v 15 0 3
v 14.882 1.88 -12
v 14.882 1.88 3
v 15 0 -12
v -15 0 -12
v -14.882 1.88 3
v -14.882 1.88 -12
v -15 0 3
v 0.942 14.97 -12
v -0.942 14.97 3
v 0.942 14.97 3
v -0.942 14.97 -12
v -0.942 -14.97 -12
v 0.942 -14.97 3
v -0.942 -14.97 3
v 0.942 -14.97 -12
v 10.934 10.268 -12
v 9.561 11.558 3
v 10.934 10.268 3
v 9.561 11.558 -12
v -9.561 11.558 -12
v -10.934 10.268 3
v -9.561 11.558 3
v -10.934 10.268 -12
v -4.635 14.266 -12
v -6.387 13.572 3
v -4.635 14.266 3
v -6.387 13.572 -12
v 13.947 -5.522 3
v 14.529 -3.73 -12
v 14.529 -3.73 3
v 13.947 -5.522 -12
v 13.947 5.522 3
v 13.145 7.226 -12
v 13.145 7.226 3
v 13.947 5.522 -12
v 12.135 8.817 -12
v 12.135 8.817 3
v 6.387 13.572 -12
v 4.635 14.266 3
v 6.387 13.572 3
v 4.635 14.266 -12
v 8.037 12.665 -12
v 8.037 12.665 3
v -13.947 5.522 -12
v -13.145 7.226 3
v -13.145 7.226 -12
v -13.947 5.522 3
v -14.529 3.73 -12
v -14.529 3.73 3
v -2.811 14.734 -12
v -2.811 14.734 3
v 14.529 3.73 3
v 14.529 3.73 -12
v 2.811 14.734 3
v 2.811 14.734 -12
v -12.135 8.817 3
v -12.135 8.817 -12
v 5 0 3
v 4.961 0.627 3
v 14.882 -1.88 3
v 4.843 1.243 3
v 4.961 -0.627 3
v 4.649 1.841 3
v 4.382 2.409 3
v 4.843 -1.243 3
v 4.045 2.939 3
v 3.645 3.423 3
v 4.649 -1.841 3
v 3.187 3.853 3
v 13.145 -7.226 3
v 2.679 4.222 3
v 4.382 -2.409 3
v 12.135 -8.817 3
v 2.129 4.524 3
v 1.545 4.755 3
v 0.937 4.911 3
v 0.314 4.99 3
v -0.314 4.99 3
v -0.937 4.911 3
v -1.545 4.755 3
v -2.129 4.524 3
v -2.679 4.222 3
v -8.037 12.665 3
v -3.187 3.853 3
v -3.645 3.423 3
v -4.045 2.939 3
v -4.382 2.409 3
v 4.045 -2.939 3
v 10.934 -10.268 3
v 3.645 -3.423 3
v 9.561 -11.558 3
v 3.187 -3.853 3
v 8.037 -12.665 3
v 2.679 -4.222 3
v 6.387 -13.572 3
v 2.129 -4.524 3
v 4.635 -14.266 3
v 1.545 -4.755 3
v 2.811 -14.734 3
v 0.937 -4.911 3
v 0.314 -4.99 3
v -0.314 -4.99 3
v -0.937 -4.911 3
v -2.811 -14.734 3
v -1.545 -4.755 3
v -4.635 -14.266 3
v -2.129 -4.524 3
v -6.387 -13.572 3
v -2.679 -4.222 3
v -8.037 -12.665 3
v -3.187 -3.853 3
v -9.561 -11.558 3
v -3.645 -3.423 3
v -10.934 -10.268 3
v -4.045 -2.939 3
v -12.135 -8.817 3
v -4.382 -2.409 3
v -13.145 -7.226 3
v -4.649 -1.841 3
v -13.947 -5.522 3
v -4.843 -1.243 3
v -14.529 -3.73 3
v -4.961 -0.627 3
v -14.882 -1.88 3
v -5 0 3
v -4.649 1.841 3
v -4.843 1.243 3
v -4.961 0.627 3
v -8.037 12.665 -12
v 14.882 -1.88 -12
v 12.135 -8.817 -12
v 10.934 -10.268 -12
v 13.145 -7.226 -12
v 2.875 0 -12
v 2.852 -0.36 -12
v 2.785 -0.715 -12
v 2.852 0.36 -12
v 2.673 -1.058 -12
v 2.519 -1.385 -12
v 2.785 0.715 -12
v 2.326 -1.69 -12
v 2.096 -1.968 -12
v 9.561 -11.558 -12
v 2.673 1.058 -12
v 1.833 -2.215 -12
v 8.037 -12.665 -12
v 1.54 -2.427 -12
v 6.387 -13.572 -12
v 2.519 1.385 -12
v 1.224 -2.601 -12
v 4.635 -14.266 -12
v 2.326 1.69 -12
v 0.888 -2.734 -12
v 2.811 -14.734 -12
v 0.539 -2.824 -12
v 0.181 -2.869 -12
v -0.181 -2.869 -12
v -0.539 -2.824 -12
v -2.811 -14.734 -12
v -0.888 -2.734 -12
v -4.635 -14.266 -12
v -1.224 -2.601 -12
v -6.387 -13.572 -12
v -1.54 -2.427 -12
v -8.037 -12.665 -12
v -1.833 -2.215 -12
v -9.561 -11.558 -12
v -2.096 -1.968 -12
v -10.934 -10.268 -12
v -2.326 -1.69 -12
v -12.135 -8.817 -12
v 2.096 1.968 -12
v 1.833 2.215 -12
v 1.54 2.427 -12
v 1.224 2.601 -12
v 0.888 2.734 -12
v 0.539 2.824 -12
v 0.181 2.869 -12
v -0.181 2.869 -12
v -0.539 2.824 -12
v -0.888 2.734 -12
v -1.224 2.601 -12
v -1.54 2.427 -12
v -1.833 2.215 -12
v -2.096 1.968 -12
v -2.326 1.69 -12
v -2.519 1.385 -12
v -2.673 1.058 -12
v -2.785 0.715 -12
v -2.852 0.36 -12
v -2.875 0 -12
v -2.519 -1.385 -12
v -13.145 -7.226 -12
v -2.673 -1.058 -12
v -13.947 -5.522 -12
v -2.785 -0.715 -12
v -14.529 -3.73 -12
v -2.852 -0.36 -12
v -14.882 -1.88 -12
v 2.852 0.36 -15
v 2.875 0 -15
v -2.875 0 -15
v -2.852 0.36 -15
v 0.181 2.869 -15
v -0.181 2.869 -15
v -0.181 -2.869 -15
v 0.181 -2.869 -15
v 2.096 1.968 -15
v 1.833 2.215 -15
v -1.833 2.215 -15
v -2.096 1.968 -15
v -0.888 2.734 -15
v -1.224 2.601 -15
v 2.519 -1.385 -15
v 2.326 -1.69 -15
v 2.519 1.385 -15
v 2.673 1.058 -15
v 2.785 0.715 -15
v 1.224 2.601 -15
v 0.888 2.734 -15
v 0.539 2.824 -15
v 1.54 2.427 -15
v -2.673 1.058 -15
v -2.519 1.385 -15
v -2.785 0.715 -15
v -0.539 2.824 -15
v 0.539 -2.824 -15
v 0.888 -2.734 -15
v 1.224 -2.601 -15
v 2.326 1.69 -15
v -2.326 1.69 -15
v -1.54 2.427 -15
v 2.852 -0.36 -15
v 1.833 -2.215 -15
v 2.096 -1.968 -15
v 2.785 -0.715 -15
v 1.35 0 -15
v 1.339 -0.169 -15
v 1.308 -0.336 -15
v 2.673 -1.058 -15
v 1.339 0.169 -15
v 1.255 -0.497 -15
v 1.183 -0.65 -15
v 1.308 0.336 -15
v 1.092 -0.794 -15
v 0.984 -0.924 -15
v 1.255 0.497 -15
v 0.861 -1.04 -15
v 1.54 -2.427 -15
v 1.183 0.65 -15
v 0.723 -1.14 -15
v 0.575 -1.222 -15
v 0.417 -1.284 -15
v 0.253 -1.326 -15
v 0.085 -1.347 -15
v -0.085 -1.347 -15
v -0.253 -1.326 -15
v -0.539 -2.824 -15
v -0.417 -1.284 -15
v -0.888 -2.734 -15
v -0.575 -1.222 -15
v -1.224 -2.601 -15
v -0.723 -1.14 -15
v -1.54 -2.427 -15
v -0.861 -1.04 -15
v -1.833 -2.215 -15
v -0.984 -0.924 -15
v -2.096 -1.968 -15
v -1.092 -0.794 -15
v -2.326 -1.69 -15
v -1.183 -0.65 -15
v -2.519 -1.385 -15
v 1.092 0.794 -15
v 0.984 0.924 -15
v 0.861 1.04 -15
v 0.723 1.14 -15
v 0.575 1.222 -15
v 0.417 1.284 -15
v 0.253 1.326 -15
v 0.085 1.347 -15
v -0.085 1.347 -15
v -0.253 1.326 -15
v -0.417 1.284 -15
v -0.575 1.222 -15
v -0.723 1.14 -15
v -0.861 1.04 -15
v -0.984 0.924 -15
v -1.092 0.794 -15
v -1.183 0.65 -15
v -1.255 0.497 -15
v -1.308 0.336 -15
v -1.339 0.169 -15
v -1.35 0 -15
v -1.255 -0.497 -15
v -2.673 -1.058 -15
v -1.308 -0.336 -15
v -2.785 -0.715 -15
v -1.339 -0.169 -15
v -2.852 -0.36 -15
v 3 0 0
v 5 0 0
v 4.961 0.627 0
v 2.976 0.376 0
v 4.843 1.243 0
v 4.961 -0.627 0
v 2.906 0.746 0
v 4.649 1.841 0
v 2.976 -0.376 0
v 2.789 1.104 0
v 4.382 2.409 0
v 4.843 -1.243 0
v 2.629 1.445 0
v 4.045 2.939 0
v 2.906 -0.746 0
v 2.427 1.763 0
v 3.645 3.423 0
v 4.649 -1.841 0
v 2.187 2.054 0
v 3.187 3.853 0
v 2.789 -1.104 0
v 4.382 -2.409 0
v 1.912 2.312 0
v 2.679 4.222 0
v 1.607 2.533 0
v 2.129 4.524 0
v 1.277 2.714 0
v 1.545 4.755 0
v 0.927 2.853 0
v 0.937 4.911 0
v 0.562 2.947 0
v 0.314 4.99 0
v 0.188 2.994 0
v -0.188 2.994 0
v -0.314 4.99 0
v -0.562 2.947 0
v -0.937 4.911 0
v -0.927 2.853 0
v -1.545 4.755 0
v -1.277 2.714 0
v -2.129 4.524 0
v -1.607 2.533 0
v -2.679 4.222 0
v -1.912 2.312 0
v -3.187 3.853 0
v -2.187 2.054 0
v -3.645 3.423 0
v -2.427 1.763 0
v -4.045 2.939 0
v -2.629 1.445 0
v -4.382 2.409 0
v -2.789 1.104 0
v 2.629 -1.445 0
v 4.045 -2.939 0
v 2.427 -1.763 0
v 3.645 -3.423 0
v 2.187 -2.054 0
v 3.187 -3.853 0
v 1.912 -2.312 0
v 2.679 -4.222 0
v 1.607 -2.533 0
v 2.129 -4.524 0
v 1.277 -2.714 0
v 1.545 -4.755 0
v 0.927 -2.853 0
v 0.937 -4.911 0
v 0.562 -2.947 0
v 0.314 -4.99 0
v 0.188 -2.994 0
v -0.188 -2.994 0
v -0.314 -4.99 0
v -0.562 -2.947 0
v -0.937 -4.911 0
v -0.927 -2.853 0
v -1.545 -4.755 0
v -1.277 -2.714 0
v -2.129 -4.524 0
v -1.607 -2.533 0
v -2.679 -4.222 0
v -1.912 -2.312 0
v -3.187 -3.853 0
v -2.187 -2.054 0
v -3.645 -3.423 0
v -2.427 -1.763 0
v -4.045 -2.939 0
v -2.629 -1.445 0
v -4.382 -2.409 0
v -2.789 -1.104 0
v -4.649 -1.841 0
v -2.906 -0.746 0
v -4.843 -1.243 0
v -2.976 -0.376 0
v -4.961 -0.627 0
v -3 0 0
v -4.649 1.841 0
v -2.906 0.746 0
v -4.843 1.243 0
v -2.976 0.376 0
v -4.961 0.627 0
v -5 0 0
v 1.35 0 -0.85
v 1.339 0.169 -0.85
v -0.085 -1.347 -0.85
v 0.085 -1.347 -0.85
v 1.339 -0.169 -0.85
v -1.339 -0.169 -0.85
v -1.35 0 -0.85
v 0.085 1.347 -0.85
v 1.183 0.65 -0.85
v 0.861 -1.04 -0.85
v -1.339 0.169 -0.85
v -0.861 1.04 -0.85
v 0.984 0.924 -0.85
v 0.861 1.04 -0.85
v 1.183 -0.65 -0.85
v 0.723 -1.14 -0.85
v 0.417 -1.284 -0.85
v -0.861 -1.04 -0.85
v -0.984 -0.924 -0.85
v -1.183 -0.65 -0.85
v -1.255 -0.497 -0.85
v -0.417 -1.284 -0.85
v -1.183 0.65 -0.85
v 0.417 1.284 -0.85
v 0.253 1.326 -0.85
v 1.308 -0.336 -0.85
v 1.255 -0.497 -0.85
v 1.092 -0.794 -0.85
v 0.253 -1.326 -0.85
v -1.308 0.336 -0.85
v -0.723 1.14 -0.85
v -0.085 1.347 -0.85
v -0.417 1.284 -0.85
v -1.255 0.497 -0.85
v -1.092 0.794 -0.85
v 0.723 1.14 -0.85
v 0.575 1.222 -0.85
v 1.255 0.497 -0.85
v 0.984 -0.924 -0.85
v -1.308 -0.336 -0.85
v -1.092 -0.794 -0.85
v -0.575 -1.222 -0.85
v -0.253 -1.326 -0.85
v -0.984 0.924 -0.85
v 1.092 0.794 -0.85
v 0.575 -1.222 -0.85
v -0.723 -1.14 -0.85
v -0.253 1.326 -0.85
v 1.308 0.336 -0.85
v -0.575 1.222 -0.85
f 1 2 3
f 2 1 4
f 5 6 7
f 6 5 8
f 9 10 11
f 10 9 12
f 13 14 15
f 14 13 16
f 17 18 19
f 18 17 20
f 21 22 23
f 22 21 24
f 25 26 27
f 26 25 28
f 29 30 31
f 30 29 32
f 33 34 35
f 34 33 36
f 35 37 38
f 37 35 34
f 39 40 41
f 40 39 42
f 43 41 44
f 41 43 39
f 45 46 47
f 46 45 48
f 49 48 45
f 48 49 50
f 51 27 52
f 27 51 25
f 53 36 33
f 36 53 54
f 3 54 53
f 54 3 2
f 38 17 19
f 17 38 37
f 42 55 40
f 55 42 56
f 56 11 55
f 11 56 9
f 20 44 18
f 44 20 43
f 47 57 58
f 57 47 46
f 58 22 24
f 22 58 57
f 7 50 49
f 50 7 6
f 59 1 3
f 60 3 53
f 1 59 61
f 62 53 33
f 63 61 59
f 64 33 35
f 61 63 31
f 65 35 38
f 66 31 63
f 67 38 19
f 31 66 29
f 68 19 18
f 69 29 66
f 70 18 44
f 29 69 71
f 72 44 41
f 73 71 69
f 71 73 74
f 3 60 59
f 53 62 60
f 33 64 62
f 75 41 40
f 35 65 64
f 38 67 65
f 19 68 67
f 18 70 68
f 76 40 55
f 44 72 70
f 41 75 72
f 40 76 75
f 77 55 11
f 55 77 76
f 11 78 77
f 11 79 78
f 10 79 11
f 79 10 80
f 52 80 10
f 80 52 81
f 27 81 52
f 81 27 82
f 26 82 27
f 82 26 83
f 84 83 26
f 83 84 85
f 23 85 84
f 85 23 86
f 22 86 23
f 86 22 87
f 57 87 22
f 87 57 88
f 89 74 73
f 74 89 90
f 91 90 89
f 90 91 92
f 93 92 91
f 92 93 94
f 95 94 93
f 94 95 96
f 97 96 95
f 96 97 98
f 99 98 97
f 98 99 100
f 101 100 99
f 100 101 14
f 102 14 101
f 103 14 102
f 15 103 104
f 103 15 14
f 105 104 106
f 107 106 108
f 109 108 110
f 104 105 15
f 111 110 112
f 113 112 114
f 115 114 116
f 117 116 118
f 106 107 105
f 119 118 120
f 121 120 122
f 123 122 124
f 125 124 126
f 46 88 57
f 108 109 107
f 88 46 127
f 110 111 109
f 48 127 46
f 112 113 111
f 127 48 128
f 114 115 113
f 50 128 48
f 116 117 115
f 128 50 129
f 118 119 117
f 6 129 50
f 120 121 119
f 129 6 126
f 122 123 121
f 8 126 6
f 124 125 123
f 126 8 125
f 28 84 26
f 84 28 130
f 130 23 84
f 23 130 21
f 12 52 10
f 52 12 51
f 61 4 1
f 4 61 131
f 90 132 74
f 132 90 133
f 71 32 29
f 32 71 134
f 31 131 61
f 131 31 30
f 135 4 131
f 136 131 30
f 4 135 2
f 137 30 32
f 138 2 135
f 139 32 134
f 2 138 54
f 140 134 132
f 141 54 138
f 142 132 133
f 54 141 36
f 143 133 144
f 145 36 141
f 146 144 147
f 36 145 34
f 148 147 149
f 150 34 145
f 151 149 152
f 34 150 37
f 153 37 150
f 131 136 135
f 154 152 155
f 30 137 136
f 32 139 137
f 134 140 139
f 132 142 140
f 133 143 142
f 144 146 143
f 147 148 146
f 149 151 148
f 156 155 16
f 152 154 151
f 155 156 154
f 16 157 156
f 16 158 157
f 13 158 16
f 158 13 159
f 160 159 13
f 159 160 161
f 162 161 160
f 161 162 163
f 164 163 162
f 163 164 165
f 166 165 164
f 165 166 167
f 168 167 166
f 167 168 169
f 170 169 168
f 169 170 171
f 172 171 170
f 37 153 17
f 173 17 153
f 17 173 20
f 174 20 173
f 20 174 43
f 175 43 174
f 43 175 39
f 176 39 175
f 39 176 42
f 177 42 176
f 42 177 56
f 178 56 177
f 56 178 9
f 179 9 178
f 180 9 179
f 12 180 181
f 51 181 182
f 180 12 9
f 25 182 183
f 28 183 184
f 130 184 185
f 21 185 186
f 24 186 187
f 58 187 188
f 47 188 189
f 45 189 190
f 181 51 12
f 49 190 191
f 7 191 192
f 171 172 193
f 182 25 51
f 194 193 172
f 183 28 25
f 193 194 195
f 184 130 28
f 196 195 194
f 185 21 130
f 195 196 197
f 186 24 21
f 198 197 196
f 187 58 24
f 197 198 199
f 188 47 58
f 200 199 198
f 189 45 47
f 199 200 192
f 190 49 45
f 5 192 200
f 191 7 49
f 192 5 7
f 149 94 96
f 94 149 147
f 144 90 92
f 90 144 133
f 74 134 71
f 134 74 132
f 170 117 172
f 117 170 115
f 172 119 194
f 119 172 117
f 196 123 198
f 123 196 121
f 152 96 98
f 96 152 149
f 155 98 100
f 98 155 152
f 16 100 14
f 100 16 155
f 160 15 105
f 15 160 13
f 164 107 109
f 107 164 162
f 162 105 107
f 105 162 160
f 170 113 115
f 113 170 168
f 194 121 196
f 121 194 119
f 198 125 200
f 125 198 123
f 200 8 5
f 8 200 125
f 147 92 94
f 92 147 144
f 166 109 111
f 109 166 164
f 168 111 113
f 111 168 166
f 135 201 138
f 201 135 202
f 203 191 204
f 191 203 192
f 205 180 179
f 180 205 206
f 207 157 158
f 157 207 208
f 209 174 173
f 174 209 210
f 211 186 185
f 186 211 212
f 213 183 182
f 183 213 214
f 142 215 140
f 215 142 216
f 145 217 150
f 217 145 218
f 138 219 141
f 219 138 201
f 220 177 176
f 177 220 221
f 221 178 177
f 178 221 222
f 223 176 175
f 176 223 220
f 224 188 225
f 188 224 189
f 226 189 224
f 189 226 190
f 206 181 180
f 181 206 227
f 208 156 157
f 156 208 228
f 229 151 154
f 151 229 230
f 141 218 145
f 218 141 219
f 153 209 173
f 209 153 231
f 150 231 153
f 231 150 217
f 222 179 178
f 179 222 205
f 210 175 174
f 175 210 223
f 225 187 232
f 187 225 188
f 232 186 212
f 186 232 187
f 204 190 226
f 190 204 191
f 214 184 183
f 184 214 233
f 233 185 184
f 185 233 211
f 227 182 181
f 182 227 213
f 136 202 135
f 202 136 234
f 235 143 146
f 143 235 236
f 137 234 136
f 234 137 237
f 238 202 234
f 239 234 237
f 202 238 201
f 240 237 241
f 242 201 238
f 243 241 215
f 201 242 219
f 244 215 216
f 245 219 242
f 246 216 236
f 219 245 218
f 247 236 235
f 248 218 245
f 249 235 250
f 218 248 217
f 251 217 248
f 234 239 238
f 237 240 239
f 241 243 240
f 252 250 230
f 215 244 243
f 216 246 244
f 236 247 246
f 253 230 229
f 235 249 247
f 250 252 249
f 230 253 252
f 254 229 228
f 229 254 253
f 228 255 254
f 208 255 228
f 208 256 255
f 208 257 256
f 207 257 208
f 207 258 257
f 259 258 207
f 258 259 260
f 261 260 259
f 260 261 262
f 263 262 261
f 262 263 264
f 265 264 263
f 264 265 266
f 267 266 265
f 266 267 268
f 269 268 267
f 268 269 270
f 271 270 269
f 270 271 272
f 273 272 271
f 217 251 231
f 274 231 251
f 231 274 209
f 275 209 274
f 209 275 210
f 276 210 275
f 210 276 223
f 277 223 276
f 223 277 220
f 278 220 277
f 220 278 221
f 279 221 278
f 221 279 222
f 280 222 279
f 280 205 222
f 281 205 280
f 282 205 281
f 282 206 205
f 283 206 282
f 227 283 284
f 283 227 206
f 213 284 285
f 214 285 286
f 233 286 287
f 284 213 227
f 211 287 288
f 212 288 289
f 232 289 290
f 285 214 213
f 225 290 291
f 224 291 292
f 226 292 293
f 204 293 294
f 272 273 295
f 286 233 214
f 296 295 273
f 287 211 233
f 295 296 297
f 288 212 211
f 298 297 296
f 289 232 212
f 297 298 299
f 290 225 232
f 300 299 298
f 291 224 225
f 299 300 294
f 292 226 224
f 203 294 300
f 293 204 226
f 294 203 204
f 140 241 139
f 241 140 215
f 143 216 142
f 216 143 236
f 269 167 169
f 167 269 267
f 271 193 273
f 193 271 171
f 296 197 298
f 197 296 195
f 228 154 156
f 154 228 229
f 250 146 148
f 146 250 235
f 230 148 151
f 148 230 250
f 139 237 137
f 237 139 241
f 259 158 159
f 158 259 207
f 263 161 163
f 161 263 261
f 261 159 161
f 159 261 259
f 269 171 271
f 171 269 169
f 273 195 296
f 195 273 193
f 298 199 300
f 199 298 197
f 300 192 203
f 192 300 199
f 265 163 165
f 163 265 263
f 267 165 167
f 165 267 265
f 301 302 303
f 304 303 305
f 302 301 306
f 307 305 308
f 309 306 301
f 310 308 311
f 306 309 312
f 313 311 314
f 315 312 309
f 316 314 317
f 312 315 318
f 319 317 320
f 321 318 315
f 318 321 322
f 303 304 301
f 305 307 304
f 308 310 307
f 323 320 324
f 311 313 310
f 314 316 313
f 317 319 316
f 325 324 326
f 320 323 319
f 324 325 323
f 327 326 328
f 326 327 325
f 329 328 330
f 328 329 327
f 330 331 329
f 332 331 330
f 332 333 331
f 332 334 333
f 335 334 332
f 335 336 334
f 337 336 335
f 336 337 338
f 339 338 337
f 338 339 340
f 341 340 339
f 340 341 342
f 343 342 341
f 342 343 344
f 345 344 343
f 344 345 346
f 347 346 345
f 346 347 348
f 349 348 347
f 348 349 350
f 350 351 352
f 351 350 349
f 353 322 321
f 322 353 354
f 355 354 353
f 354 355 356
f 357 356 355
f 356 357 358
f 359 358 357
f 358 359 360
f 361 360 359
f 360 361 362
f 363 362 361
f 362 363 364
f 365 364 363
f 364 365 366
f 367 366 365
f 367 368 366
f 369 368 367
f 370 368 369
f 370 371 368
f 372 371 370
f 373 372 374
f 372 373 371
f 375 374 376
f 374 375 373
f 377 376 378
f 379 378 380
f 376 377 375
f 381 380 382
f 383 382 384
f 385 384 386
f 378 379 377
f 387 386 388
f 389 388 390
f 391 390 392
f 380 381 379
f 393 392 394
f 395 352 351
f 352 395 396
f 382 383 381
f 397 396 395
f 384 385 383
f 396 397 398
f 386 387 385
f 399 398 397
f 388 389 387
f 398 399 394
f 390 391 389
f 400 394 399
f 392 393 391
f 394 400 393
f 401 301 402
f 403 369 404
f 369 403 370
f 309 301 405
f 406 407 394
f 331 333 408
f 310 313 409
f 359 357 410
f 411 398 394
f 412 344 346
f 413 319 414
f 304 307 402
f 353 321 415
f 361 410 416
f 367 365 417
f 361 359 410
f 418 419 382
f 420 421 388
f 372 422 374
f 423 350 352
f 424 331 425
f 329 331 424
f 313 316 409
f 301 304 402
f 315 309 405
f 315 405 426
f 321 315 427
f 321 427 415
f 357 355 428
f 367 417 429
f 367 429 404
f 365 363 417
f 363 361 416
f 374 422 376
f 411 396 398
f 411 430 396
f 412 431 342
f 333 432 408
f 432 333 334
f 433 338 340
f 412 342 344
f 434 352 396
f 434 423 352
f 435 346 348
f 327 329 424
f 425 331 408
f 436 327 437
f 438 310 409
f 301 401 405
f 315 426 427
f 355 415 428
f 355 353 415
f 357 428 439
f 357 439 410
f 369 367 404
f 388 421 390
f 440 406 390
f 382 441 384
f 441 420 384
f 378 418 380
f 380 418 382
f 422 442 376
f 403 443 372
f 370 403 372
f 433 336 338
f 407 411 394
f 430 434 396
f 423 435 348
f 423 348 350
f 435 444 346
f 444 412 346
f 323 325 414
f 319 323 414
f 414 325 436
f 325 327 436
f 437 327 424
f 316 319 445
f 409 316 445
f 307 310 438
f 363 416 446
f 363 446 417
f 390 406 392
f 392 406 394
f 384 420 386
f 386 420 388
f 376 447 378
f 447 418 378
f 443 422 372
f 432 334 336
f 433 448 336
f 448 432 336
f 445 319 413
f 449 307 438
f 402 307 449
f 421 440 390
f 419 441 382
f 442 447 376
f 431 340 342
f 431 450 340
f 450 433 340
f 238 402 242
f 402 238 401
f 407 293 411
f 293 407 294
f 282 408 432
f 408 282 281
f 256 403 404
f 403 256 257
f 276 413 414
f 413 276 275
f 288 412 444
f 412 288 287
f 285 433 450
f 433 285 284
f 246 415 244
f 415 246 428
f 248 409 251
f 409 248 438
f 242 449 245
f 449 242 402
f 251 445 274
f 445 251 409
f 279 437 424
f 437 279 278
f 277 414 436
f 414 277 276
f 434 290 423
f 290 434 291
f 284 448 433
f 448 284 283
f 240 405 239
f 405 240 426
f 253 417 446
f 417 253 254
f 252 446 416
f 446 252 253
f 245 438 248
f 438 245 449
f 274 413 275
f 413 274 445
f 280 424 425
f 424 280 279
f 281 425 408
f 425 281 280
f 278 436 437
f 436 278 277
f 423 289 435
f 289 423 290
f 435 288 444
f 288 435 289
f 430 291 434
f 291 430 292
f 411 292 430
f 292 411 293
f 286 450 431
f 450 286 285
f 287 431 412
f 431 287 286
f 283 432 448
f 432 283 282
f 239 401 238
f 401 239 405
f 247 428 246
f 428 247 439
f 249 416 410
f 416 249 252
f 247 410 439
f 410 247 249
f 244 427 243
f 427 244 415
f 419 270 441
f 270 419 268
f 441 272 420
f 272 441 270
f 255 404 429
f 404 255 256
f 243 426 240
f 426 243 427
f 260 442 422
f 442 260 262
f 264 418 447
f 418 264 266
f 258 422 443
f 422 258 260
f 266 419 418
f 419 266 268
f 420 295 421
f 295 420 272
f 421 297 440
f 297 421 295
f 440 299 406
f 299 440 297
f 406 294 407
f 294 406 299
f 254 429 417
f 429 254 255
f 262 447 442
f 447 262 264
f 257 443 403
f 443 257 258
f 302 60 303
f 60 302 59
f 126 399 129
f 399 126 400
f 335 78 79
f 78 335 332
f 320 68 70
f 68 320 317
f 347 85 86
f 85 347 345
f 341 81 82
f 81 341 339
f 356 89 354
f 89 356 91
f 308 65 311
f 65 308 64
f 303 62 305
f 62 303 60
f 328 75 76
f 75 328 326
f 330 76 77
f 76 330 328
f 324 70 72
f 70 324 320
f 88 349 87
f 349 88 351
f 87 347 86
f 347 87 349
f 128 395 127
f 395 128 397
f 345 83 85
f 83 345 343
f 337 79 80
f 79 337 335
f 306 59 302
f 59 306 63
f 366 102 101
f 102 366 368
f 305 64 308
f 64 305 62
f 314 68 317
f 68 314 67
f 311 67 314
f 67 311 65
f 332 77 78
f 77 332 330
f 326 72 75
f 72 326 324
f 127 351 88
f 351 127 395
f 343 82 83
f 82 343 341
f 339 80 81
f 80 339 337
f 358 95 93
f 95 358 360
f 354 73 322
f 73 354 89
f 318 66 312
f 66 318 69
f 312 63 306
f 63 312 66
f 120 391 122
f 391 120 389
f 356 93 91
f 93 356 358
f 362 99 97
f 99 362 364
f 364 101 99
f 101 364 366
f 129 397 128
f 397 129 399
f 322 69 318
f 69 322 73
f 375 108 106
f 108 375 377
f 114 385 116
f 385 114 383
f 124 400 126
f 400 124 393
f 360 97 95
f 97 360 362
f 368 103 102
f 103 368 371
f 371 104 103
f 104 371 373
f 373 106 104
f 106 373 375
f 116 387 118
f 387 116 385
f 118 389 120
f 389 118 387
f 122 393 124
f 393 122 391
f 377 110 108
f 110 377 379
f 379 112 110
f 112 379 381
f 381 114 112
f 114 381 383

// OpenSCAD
$fn = 50;


difference() {
	union() {
		translate(v = [0, 0, -12.0000000000]) {
			cylinder(h = 15, r = 15.0000000000);
		}
		#translate(v = [0, 0, -15.0000000000]) {
			cylinder(h = 15, r = 2.8750000000);
		}
	}
	union() {
		translate(v = [0, 0, 0]) {
			rotate(a = [0, 0, 0]) {
				difference() {
					union() {
						translate(v = [0, 0, -15.0000000000]) {
							cylinder(h = 15, r = 1.0000000000);
						}
						translate(v = [0, 0, -0.8500000000]) {
							cylinder(h = 0.8500000000, r1 = 1.3500000000, r2 = 3.0000000000);
						}
						translate(v = [0, 0, -15.0000000000]) {
							cylinder(h = 15, r = 1.3500000000);
						}
						translate(v = [0, 0, -15.0000000000]) {
							cylinder(h = 15, r = 1.0000000000);
						}
					}
					union();
				}
			}
		}
		#cylinder(h = 3, r = 5.0000000000);
	}
}
